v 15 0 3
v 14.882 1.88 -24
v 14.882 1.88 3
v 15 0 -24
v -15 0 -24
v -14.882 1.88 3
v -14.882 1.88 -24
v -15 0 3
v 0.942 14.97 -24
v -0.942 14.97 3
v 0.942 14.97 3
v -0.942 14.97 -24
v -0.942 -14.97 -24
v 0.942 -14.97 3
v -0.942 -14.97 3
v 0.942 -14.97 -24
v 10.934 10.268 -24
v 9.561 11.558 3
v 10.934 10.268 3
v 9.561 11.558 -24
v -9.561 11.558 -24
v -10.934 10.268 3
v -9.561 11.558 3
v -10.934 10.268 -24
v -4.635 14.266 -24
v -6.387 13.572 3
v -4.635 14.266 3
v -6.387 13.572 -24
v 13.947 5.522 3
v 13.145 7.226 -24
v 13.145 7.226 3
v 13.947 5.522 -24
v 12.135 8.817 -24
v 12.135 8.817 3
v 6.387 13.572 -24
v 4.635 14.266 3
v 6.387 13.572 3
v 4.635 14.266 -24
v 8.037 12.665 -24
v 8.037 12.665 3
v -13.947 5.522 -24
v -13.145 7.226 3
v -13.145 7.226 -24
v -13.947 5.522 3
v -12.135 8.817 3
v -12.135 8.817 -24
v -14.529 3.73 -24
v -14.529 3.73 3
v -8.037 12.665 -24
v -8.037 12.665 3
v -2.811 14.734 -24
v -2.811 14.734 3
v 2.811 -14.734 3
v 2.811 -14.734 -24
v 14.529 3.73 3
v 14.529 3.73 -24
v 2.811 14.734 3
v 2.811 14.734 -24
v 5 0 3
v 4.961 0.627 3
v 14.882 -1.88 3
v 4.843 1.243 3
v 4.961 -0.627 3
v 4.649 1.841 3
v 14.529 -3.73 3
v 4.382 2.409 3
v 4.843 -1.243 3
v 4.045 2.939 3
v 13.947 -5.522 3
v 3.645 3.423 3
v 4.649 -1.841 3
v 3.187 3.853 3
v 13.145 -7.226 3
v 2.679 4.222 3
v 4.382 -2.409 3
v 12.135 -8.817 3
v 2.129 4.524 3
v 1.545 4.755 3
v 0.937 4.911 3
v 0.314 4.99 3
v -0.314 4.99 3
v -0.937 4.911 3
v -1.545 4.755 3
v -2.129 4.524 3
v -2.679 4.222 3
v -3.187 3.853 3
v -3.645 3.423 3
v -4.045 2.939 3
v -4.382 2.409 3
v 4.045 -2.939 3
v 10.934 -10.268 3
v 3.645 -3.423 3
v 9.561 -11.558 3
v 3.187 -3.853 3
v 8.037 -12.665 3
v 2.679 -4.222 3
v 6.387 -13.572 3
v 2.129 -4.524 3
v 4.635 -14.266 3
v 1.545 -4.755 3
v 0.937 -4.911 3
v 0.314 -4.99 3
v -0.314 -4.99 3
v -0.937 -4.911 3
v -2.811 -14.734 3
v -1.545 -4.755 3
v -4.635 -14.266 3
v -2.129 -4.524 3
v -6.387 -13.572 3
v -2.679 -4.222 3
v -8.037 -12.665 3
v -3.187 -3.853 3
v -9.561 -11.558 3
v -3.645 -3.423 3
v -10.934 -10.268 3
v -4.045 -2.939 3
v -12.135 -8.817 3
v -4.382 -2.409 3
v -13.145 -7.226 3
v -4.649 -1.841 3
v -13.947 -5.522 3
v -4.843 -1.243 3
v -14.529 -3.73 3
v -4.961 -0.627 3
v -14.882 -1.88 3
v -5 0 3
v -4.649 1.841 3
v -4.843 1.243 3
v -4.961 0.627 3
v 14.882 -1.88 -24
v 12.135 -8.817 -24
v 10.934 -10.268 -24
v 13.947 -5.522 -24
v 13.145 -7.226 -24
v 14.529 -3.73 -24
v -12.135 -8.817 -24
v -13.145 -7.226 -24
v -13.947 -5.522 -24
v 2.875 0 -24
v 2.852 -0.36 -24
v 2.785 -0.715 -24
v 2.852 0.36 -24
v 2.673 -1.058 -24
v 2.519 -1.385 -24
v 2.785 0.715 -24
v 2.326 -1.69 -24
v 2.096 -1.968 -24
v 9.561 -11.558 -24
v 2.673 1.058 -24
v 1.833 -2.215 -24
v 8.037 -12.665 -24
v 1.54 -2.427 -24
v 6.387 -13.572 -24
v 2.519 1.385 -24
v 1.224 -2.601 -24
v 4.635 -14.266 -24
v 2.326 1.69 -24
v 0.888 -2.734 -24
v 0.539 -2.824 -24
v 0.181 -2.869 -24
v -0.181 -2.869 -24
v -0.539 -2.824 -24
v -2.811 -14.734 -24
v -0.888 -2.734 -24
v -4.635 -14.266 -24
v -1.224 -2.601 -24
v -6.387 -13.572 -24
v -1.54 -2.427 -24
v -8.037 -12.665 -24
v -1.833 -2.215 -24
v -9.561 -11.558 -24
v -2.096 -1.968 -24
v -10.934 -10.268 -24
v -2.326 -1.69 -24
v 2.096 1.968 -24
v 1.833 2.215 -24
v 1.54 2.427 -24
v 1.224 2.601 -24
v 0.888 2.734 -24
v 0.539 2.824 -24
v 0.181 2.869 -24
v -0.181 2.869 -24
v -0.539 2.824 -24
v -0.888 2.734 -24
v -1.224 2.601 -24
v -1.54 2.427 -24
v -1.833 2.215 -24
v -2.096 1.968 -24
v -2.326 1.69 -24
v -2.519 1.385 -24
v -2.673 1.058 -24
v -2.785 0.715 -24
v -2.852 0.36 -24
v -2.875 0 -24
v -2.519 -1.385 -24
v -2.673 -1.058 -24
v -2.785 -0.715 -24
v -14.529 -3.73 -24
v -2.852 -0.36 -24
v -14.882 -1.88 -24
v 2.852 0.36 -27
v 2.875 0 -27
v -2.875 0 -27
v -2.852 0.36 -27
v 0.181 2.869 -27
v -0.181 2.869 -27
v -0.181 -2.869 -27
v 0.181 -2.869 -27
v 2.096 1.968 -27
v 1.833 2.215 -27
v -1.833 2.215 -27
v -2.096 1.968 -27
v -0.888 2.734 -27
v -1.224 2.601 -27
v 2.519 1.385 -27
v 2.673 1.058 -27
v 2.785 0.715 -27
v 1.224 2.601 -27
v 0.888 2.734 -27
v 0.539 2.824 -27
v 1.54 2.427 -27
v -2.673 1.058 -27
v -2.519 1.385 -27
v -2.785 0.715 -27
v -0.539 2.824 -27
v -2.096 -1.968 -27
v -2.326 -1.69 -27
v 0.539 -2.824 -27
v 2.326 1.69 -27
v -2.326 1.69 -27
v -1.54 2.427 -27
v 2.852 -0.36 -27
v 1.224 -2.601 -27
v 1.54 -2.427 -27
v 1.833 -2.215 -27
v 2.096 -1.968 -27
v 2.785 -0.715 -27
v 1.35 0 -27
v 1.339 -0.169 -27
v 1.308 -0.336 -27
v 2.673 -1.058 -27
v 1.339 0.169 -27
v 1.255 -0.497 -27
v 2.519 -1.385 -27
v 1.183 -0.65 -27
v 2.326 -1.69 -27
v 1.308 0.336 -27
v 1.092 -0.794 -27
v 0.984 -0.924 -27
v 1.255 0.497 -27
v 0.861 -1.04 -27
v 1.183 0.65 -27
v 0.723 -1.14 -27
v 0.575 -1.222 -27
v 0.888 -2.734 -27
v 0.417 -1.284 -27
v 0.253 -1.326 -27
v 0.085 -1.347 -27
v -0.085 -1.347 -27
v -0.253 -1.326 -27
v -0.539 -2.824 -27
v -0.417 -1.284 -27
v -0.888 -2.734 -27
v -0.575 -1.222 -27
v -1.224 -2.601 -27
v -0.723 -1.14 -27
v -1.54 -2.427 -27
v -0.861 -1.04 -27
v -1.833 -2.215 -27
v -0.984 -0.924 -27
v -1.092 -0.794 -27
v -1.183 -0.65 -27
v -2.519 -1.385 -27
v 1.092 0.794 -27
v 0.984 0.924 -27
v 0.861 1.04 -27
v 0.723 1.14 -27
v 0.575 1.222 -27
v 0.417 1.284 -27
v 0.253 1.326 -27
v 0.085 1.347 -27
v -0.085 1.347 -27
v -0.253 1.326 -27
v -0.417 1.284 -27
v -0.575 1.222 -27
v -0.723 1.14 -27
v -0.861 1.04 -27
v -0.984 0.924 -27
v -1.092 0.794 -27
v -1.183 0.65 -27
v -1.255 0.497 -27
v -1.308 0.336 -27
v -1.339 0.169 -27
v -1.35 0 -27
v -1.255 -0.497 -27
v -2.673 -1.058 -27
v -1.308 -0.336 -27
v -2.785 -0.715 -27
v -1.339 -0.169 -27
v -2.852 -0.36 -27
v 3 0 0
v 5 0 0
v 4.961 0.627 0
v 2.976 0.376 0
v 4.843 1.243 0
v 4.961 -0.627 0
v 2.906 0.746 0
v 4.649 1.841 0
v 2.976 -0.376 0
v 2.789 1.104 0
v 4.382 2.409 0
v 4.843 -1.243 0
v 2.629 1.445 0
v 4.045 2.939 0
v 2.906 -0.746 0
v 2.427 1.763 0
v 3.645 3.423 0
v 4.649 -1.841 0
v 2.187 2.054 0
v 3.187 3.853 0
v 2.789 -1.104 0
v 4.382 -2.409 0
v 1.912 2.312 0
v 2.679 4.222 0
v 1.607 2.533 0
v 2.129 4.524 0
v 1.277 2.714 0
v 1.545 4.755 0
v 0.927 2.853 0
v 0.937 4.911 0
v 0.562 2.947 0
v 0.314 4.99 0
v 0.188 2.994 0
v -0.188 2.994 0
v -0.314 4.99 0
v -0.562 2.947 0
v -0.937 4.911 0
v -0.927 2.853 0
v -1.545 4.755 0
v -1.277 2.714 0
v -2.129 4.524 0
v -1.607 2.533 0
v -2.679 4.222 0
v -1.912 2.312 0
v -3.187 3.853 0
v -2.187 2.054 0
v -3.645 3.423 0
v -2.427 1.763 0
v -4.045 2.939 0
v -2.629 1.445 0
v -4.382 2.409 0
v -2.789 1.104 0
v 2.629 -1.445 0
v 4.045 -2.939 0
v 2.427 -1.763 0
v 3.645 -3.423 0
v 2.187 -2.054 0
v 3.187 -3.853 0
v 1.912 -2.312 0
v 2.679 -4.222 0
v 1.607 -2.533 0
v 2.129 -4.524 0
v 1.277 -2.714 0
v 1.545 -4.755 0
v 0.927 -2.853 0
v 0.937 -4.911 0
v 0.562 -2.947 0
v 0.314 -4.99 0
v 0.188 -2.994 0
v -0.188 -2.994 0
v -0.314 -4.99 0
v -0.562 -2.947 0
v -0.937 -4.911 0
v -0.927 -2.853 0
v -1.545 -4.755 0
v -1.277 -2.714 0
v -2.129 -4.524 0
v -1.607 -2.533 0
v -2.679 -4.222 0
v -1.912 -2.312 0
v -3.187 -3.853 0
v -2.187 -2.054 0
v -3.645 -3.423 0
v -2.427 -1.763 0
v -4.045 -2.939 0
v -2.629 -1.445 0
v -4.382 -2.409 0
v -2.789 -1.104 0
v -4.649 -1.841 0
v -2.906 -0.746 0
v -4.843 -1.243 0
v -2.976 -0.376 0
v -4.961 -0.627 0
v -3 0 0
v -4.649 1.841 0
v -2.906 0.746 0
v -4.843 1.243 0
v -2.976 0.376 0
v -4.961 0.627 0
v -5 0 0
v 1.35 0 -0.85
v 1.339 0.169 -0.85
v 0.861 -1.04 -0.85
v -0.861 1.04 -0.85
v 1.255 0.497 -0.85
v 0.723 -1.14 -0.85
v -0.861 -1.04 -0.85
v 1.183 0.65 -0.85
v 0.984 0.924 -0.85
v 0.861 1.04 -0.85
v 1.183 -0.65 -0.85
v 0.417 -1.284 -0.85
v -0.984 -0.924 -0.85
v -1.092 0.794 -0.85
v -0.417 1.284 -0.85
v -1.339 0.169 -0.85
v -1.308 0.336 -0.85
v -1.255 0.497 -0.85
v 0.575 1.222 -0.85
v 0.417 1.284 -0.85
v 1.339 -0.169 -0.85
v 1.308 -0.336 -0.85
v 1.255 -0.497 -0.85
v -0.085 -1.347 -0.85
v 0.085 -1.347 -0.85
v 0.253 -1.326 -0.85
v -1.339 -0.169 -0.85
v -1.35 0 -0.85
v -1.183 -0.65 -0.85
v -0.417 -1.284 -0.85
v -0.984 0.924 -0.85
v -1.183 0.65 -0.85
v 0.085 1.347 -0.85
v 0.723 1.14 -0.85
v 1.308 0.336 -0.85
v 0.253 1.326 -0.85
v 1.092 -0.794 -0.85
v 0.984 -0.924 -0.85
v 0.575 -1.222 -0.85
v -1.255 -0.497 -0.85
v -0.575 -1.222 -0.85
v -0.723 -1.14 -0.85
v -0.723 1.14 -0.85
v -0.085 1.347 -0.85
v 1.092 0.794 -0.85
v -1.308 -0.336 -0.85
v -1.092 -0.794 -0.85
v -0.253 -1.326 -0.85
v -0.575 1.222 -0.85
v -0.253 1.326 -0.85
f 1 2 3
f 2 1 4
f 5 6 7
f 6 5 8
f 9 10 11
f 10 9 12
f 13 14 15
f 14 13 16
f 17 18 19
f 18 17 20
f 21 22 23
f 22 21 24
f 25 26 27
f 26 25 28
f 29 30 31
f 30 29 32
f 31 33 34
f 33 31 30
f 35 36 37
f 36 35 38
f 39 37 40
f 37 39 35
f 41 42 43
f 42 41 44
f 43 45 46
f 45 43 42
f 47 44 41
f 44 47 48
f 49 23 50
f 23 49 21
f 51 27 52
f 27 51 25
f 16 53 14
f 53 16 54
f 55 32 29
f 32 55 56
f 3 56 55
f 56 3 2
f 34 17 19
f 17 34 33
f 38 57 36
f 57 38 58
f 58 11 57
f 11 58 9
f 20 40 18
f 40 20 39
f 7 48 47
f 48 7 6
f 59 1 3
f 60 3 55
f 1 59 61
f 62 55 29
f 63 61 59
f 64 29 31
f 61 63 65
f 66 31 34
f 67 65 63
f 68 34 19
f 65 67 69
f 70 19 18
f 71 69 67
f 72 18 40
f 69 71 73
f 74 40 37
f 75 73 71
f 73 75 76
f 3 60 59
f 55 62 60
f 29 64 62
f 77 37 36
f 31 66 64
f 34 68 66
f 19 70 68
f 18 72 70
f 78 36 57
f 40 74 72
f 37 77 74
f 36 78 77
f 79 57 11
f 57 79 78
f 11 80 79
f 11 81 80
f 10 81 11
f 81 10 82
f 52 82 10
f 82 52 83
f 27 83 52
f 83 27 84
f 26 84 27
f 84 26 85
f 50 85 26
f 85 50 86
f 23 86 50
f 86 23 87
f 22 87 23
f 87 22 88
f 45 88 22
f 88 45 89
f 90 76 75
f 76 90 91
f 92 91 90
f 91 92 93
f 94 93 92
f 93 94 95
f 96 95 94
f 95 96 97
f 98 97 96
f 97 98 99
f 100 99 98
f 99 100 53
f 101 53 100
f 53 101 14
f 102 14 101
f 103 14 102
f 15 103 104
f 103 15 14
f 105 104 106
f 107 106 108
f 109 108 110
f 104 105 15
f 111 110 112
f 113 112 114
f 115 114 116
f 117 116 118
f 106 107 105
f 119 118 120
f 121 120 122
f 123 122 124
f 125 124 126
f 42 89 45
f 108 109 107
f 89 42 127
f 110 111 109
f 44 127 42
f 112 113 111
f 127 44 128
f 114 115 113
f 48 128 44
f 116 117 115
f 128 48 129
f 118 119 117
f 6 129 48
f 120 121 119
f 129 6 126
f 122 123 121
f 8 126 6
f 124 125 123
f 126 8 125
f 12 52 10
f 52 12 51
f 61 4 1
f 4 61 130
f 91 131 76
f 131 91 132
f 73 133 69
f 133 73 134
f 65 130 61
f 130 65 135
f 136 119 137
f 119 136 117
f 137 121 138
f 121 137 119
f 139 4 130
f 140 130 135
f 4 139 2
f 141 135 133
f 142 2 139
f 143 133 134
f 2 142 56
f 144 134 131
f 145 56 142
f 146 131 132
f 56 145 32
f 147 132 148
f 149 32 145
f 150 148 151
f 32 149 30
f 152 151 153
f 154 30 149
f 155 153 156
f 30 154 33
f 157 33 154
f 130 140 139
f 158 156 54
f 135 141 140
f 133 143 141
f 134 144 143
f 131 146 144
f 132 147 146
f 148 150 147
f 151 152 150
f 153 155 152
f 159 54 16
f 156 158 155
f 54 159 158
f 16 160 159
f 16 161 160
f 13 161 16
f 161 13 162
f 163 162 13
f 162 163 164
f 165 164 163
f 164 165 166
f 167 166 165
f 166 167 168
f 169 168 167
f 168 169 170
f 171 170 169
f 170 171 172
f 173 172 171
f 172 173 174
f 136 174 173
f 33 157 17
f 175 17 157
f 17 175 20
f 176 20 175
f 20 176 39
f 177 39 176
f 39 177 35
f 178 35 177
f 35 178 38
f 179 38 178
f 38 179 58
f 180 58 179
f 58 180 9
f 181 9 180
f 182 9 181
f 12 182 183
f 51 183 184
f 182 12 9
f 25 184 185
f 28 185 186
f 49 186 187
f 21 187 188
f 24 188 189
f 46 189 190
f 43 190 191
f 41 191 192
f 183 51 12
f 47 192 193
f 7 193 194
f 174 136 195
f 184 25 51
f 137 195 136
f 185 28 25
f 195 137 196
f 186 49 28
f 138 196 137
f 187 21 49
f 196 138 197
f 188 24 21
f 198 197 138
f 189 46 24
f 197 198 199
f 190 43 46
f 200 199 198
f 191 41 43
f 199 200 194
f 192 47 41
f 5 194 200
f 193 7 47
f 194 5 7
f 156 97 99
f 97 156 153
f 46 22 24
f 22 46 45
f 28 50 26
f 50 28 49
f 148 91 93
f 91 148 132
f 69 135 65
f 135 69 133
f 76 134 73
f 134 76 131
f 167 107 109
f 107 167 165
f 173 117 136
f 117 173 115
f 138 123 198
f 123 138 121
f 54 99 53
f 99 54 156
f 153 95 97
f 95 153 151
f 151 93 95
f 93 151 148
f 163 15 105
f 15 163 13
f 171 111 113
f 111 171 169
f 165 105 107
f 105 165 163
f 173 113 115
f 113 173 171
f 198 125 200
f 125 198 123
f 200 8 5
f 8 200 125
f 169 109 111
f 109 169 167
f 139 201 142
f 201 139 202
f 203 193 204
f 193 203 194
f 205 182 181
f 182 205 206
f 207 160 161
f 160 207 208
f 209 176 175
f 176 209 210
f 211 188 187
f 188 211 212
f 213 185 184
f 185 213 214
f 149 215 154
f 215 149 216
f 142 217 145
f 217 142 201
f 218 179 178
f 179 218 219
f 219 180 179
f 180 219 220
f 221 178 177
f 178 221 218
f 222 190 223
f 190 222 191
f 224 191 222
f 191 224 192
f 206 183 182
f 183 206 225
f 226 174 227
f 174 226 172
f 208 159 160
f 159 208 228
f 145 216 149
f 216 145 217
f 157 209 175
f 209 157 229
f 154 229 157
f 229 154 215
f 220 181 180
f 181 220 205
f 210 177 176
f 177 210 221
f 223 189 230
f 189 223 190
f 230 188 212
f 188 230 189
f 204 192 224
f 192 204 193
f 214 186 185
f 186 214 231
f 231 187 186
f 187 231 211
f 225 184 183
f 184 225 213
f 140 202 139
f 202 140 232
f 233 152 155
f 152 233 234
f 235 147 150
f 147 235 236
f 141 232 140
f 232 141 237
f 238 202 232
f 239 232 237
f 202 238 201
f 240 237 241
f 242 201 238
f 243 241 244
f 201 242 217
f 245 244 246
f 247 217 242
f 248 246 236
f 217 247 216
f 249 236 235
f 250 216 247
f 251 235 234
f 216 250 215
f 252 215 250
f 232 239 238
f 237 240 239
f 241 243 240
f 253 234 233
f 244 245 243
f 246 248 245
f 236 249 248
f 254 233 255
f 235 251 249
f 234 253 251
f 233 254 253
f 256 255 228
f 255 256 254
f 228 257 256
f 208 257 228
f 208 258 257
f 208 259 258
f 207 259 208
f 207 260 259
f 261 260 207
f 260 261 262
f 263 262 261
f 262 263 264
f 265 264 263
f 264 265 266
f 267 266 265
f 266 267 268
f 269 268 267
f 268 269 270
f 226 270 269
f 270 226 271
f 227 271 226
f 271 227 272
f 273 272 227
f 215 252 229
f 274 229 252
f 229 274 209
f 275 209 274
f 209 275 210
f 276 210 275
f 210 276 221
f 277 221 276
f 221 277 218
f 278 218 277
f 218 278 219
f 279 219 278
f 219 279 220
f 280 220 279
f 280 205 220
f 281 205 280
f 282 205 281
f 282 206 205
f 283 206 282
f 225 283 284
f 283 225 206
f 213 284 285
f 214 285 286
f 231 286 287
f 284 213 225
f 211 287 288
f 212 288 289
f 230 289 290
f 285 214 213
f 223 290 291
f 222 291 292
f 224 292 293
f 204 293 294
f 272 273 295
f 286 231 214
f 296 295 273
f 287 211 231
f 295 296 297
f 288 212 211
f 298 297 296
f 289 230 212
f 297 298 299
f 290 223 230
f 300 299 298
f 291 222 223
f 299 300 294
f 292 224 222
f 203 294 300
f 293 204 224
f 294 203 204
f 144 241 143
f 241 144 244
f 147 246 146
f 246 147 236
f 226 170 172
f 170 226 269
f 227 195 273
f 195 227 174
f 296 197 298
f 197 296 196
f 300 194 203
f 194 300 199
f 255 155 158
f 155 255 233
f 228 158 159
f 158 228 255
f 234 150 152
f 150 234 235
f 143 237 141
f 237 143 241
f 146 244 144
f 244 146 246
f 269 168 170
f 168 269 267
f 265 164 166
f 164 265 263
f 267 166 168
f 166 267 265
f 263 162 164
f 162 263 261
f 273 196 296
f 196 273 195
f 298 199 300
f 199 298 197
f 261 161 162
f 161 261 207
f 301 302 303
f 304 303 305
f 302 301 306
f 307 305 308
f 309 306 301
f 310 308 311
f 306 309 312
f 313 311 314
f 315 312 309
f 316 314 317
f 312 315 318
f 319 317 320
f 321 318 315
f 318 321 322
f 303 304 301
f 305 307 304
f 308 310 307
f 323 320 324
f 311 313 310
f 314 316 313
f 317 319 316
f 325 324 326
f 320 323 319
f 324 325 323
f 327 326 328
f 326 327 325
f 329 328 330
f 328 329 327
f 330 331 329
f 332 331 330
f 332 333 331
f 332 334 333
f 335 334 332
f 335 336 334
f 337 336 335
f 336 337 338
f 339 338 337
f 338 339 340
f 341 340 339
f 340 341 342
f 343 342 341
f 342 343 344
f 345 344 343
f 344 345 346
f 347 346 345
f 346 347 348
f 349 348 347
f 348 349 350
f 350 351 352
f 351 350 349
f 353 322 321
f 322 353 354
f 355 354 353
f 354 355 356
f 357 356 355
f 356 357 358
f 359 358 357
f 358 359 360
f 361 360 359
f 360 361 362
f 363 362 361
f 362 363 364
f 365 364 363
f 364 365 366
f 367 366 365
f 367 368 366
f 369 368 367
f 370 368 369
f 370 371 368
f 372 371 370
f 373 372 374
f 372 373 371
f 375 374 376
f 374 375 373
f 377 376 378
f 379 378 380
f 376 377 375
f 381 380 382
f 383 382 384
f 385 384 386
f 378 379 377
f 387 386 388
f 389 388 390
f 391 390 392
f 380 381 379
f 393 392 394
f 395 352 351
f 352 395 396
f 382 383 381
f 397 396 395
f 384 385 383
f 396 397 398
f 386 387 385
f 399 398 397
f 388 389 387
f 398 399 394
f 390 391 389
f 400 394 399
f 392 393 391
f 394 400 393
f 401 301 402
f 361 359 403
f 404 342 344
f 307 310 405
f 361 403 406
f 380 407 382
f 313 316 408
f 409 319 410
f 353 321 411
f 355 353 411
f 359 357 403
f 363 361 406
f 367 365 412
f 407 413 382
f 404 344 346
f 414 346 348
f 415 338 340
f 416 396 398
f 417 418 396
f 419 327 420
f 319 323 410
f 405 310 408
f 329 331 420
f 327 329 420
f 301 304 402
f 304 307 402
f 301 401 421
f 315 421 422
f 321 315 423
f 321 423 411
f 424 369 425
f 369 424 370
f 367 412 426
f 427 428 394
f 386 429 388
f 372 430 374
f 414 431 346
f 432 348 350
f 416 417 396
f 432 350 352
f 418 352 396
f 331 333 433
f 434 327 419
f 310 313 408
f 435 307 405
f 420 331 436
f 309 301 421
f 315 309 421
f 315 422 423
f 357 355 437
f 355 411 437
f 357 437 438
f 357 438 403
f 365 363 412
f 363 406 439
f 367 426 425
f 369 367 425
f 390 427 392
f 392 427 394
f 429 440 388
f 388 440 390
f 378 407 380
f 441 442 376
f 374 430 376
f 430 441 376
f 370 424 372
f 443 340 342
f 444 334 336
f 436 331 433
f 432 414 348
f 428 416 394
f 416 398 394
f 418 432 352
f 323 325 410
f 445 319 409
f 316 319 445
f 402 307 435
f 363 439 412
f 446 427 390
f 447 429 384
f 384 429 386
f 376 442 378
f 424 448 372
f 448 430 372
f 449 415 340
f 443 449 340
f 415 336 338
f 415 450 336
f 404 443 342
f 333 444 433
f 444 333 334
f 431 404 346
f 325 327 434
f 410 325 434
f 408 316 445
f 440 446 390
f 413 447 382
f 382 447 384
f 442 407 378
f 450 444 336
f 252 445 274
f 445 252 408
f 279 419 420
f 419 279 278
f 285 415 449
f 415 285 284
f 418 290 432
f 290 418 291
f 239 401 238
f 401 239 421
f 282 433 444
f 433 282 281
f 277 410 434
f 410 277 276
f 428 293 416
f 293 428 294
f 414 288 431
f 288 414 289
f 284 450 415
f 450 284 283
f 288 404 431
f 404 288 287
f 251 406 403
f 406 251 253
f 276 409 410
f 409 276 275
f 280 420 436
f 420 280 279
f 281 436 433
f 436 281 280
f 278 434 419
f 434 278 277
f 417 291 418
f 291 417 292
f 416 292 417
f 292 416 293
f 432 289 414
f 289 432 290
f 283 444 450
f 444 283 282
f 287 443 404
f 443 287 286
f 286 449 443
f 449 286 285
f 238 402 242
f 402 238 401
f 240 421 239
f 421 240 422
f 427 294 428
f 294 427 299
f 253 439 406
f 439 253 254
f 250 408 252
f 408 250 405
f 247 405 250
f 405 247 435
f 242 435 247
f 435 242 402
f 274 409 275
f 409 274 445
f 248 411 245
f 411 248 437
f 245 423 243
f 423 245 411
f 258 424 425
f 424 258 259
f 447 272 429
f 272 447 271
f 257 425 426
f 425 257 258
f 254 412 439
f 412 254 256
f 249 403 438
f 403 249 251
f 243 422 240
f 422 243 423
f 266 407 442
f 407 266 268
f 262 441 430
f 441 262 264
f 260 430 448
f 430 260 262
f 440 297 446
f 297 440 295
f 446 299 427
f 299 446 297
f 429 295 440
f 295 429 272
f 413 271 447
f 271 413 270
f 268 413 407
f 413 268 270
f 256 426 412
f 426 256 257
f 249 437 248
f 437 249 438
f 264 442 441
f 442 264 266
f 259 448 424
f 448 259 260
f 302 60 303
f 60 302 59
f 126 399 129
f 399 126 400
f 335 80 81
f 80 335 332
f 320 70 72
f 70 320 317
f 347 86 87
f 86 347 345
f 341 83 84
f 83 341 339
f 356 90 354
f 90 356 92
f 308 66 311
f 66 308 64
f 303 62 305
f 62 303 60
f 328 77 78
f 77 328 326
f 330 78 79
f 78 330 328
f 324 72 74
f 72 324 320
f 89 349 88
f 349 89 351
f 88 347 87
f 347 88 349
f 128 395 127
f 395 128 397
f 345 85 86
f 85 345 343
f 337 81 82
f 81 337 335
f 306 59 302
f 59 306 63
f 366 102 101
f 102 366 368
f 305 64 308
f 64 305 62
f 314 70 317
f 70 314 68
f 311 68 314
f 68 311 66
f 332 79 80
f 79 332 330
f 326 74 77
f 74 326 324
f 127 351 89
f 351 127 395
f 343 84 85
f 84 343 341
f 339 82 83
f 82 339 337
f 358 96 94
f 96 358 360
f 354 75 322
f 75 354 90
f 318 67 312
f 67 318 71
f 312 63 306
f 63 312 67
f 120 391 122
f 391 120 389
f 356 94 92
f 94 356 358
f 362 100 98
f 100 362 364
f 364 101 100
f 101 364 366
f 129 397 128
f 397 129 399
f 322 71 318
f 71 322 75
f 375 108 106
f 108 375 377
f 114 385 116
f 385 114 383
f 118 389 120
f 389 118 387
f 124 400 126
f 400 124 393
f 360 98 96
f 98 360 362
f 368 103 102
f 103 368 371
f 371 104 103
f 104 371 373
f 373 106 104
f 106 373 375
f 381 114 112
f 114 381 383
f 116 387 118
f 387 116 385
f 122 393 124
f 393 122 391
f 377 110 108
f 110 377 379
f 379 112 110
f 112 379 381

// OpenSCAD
$fn = 50;


difference() {
	union() {
		translate(v = [0, 0, -24.0000000000]) {
			cylinder(h = 27, r = 15.0000000000);
		}
		#translate(v = [0, 0, -27.0000000000]) {
			cylinder(h = 27, r = 2.8750000000);
		}
	}
	union() {
		translate(v = [0, 0, 0]) {
			rotate(a = [0, 0, 0]) {
				difference() {
					union() {
						translate(v = [0, 0, -27.0000000000]) {
							cylinder(h = 27, r = 1.0000000000);
						}
						translate(v = [0, 0, -0.8500000000]) {
							cylinder(h = 0.8500000000, r1 = 1.3500000000, r2 = 3.0000000000);
						}
						translate(v = [0, 0, -27.0000000000]) {
							cylinder(h = 27, r = 1.3500000000);
						}
						translate(v = [0, 0, -27.0000000000]) {
							cylinder(h = 27, r = 1.0000000000);
						}
					}
					union();
				}
			}
		}
		#cylinder(h = 3, r = 5.0000000000);
	}
}
